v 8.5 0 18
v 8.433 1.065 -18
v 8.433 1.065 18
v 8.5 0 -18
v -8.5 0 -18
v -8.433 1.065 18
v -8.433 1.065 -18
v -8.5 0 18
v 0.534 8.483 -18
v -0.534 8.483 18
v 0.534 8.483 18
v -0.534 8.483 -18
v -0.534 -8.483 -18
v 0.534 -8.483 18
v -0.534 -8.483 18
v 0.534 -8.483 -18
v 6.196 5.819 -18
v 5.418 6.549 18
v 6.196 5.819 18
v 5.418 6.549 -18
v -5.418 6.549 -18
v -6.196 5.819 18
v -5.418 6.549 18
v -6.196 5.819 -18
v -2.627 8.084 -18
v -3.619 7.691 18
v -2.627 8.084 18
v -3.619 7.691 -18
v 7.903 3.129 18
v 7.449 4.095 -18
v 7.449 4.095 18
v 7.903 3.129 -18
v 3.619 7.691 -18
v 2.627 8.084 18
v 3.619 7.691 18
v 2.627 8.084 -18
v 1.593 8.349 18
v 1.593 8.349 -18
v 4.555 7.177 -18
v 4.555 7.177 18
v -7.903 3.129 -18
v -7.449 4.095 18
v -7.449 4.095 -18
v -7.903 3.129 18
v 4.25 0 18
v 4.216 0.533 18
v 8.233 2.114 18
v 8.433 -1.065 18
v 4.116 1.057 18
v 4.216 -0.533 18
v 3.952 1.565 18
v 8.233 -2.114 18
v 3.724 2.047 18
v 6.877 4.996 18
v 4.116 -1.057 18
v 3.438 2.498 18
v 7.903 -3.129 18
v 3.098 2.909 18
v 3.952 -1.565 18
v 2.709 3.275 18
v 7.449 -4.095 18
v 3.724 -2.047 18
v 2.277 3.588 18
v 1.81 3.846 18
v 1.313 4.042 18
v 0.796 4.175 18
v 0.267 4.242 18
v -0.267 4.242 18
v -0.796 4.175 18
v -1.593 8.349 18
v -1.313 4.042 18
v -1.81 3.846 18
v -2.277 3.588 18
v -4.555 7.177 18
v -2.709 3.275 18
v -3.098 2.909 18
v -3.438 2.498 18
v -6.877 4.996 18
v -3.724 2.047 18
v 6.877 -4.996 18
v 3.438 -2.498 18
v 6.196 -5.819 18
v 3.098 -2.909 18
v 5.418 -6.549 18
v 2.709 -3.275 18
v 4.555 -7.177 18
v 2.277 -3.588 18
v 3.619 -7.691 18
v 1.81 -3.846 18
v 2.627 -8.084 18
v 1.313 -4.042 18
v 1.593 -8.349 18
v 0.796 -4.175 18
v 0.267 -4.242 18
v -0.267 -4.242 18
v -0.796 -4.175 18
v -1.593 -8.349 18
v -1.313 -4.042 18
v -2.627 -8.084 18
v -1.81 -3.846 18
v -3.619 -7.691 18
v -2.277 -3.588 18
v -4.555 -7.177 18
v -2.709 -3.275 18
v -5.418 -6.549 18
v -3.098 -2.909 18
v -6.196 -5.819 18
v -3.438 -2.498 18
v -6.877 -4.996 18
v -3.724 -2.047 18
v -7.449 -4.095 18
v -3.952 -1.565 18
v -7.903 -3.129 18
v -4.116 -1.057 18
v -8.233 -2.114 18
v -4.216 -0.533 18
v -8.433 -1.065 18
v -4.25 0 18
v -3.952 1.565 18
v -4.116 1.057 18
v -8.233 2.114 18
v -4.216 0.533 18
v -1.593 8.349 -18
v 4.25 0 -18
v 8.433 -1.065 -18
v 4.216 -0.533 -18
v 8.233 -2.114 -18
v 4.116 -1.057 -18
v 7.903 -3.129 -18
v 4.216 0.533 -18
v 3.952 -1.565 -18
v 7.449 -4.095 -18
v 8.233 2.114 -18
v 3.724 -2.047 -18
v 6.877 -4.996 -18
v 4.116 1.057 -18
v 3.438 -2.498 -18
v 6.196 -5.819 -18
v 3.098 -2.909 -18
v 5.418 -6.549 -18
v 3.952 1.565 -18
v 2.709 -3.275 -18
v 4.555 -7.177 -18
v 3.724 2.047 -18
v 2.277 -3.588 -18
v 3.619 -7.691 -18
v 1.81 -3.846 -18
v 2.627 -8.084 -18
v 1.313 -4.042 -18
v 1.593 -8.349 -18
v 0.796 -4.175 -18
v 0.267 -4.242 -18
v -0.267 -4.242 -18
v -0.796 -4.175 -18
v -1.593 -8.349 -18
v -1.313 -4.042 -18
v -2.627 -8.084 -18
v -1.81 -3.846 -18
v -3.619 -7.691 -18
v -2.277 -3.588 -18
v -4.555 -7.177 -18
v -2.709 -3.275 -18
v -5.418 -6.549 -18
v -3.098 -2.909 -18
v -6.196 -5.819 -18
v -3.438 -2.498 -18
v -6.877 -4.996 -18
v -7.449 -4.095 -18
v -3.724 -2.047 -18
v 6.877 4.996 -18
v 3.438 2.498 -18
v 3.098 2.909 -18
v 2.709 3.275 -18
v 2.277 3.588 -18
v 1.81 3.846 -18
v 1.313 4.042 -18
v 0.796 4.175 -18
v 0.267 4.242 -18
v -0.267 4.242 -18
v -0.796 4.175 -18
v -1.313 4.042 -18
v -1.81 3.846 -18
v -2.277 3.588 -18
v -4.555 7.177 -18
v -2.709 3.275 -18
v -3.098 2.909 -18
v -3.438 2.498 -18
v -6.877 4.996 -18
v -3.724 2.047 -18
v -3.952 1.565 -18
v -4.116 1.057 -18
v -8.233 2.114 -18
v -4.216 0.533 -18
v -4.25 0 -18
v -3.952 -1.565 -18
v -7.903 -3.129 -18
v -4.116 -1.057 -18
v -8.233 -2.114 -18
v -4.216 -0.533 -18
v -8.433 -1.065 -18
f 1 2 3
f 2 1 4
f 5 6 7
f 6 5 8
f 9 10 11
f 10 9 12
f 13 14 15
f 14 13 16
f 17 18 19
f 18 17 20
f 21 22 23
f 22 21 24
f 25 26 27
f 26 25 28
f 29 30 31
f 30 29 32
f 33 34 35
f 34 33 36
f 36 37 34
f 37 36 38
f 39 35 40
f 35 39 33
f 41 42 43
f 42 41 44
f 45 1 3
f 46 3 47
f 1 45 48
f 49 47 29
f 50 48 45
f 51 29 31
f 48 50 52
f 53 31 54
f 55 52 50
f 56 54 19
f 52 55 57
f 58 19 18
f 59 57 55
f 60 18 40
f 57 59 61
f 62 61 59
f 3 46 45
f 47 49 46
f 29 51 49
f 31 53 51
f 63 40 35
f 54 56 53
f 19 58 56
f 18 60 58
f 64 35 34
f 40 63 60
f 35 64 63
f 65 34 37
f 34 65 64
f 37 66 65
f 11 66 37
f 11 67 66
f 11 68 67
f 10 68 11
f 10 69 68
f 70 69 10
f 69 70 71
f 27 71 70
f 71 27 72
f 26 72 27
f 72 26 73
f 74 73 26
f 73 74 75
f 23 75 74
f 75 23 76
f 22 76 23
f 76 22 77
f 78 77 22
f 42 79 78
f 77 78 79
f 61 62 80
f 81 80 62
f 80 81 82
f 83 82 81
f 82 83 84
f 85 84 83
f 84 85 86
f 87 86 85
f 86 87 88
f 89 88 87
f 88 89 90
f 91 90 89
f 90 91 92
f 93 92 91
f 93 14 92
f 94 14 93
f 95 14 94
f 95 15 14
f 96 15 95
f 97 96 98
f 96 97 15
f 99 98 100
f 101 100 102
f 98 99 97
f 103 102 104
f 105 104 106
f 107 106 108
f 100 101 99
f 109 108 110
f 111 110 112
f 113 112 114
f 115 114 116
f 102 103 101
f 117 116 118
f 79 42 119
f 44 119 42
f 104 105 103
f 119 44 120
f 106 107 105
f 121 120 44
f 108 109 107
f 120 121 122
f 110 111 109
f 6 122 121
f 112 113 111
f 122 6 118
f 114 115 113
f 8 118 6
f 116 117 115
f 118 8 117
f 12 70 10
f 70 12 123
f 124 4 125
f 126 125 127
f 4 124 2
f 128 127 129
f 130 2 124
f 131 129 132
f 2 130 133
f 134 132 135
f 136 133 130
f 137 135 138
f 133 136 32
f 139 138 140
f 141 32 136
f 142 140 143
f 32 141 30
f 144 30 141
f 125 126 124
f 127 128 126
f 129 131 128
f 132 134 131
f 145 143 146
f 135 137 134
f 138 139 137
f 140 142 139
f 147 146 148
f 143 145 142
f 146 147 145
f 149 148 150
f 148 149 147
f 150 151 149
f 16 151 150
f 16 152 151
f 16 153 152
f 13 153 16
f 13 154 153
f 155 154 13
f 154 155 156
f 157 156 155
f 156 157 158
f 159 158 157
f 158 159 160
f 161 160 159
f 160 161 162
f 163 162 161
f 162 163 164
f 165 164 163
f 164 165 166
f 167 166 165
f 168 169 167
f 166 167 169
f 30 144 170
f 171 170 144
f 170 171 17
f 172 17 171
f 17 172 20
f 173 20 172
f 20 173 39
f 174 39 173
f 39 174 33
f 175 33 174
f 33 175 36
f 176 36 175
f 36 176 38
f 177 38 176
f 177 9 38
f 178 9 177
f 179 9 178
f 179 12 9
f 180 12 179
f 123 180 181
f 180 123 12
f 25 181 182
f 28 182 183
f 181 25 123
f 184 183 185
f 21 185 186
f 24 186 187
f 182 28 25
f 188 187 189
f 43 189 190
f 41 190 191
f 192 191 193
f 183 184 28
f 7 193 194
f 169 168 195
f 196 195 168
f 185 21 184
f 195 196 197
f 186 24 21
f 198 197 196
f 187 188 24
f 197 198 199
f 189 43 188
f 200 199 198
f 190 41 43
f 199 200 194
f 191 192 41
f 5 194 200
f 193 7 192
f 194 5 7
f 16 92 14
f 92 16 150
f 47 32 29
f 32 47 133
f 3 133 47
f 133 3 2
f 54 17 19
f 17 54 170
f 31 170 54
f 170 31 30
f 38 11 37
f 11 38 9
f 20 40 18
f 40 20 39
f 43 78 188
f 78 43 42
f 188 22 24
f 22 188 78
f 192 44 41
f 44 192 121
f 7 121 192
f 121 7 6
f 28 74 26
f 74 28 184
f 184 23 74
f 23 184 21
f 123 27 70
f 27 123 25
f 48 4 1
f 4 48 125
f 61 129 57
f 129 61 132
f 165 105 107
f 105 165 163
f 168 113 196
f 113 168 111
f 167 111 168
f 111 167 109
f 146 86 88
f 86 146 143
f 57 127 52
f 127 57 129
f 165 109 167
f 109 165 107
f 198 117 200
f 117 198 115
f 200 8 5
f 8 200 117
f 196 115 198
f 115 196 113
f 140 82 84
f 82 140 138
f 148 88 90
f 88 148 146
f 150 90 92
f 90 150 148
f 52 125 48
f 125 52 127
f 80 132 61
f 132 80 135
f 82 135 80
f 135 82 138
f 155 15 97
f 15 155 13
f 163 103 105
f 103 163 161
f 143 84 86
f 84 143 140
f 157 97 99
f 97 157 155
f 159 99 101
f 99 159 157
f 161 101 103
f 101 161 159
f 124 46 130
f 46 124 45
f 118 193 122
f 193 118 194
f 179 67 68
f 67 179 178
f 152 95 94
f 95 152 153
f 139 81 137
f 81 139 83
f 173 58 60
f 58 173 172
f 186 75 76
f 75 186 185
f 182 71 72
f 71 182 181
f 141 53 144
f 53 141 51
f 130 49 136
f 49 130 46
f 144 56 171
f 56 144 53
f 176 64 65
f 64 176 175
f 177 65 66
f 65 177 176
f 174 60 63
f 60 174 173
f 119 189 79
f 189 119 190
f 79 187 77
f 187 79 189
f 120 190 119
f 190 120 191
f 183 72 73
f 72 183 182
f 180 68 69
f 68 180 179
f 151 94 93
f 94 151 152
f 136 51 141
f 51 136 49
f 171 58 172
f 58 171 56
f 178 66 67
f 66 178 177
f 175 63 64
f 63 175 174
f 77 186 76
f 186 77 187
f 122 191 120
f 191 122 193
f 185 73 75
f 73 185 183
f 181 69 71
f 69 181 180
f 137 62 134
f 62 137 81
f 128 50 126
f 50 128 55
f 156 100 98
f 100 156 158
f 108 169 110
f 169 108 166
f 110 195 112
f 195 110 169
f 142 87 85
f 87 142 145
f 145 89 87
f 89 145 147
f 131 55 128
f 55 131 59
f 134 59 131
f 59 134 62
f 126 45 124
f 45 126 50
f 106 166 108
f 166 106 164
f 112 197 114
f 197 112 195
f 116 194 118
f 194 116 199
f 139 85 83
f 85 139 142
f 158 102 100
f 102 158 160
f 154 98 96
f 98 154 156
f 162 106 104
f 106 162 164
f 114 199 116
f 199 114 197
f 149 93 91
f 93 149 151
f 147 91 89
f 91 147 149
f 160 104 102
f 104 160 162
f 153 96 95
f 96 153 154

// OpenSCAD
$fn = 50;


difference() {
	union() {
		translate(v = [0, 0, -18.0000000000]) {
			cylinder(h = 36, r = 8.5000000000);
		}
	}
	union() {
		translate(v = [0, 0, -100.0000000000]) {
			cylinder(h = 200, r = 4.2500000000);
		}
	}
}
